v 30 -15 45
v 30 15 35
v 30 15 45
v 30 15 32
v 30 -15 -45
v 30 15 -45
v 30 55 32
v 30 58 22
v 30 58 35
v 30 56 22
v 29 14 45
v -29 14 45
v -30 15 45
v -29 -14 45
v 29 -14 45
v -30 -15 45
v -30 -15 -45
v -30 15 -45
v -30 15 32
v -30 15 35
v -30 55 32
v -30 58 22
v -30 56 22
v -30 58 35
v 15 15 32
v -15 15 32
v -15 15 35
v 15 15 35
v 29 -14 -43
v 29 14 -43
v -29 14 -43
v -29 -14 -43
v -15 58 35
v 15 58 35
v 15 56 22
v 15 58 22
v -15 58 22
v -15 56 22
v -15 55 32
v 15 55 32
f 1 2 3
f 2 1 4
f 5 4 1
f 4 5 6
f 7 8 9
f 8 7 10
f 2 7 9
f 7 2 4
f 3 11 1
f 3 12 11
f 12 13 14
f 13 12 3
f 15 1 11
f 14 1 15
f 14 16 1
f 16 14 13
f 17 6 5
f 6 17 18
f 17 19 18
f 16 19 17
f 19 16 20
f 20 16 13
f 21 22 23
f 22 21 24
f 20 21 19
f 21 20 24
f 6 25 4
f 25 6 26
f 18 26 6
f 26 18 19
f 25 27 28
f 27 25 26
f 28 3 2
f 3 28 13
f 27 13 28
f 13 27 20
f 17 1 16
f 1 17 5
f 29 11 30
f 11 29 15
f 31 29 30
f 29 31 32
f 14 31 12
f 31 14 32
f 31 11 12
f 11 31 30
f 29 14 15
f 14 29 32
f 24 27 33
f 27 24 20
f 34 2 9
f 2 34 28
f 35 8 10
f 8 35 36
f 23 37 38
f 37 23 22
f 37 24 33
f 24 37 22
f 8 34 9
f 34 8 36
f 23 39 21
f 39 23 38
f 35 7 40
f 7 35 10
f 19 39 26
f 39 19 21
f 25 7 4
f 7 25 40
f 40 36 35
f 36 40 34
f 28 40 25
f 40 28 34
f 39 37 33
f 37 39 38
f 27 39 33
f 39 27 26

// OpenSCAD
height = 90;
depth = 30;
width = 60;
wallThickness = 1;
bottomThickness = 2;

difference(){
	cube([width, depth, height], center=true);
	translate([0, 0, bottomThickness])
		cube([width-2*wallThickness, 30-2*wallThickness, height], center=true);
}

translate([0, 0, height/2-15])
	difference(){
		clipInnerHeight = 10;
		clipTopThickness = 3;
		clipOutterHeight = clipInnerHeight+clipTopThickness;
		clipOutterDepth = 43;
		
		translate([0, depth/2+clipOutterDepth/2, -clipTopThickness/2])
			cube([width, clipOutterDepth, clipOutterHeight], center=true);
		
		#translate([-width/2, depth/2, -clipTopThickness]){
			hull(){
				translate([0, 0, clipInnerHeight/2])
					cube([width, 40, 1e-4]);
				translate([0, 0, -clipInnerHeight/2])
					cube([width, 41, 1e-4]);
			}
		}
			
		#translate([0, depth/2+clipOutterDepth/2, -clipTopThickness/2])
			cube([width/2, clipOutterDepth, clipOutterHeight], center=true);
	}
